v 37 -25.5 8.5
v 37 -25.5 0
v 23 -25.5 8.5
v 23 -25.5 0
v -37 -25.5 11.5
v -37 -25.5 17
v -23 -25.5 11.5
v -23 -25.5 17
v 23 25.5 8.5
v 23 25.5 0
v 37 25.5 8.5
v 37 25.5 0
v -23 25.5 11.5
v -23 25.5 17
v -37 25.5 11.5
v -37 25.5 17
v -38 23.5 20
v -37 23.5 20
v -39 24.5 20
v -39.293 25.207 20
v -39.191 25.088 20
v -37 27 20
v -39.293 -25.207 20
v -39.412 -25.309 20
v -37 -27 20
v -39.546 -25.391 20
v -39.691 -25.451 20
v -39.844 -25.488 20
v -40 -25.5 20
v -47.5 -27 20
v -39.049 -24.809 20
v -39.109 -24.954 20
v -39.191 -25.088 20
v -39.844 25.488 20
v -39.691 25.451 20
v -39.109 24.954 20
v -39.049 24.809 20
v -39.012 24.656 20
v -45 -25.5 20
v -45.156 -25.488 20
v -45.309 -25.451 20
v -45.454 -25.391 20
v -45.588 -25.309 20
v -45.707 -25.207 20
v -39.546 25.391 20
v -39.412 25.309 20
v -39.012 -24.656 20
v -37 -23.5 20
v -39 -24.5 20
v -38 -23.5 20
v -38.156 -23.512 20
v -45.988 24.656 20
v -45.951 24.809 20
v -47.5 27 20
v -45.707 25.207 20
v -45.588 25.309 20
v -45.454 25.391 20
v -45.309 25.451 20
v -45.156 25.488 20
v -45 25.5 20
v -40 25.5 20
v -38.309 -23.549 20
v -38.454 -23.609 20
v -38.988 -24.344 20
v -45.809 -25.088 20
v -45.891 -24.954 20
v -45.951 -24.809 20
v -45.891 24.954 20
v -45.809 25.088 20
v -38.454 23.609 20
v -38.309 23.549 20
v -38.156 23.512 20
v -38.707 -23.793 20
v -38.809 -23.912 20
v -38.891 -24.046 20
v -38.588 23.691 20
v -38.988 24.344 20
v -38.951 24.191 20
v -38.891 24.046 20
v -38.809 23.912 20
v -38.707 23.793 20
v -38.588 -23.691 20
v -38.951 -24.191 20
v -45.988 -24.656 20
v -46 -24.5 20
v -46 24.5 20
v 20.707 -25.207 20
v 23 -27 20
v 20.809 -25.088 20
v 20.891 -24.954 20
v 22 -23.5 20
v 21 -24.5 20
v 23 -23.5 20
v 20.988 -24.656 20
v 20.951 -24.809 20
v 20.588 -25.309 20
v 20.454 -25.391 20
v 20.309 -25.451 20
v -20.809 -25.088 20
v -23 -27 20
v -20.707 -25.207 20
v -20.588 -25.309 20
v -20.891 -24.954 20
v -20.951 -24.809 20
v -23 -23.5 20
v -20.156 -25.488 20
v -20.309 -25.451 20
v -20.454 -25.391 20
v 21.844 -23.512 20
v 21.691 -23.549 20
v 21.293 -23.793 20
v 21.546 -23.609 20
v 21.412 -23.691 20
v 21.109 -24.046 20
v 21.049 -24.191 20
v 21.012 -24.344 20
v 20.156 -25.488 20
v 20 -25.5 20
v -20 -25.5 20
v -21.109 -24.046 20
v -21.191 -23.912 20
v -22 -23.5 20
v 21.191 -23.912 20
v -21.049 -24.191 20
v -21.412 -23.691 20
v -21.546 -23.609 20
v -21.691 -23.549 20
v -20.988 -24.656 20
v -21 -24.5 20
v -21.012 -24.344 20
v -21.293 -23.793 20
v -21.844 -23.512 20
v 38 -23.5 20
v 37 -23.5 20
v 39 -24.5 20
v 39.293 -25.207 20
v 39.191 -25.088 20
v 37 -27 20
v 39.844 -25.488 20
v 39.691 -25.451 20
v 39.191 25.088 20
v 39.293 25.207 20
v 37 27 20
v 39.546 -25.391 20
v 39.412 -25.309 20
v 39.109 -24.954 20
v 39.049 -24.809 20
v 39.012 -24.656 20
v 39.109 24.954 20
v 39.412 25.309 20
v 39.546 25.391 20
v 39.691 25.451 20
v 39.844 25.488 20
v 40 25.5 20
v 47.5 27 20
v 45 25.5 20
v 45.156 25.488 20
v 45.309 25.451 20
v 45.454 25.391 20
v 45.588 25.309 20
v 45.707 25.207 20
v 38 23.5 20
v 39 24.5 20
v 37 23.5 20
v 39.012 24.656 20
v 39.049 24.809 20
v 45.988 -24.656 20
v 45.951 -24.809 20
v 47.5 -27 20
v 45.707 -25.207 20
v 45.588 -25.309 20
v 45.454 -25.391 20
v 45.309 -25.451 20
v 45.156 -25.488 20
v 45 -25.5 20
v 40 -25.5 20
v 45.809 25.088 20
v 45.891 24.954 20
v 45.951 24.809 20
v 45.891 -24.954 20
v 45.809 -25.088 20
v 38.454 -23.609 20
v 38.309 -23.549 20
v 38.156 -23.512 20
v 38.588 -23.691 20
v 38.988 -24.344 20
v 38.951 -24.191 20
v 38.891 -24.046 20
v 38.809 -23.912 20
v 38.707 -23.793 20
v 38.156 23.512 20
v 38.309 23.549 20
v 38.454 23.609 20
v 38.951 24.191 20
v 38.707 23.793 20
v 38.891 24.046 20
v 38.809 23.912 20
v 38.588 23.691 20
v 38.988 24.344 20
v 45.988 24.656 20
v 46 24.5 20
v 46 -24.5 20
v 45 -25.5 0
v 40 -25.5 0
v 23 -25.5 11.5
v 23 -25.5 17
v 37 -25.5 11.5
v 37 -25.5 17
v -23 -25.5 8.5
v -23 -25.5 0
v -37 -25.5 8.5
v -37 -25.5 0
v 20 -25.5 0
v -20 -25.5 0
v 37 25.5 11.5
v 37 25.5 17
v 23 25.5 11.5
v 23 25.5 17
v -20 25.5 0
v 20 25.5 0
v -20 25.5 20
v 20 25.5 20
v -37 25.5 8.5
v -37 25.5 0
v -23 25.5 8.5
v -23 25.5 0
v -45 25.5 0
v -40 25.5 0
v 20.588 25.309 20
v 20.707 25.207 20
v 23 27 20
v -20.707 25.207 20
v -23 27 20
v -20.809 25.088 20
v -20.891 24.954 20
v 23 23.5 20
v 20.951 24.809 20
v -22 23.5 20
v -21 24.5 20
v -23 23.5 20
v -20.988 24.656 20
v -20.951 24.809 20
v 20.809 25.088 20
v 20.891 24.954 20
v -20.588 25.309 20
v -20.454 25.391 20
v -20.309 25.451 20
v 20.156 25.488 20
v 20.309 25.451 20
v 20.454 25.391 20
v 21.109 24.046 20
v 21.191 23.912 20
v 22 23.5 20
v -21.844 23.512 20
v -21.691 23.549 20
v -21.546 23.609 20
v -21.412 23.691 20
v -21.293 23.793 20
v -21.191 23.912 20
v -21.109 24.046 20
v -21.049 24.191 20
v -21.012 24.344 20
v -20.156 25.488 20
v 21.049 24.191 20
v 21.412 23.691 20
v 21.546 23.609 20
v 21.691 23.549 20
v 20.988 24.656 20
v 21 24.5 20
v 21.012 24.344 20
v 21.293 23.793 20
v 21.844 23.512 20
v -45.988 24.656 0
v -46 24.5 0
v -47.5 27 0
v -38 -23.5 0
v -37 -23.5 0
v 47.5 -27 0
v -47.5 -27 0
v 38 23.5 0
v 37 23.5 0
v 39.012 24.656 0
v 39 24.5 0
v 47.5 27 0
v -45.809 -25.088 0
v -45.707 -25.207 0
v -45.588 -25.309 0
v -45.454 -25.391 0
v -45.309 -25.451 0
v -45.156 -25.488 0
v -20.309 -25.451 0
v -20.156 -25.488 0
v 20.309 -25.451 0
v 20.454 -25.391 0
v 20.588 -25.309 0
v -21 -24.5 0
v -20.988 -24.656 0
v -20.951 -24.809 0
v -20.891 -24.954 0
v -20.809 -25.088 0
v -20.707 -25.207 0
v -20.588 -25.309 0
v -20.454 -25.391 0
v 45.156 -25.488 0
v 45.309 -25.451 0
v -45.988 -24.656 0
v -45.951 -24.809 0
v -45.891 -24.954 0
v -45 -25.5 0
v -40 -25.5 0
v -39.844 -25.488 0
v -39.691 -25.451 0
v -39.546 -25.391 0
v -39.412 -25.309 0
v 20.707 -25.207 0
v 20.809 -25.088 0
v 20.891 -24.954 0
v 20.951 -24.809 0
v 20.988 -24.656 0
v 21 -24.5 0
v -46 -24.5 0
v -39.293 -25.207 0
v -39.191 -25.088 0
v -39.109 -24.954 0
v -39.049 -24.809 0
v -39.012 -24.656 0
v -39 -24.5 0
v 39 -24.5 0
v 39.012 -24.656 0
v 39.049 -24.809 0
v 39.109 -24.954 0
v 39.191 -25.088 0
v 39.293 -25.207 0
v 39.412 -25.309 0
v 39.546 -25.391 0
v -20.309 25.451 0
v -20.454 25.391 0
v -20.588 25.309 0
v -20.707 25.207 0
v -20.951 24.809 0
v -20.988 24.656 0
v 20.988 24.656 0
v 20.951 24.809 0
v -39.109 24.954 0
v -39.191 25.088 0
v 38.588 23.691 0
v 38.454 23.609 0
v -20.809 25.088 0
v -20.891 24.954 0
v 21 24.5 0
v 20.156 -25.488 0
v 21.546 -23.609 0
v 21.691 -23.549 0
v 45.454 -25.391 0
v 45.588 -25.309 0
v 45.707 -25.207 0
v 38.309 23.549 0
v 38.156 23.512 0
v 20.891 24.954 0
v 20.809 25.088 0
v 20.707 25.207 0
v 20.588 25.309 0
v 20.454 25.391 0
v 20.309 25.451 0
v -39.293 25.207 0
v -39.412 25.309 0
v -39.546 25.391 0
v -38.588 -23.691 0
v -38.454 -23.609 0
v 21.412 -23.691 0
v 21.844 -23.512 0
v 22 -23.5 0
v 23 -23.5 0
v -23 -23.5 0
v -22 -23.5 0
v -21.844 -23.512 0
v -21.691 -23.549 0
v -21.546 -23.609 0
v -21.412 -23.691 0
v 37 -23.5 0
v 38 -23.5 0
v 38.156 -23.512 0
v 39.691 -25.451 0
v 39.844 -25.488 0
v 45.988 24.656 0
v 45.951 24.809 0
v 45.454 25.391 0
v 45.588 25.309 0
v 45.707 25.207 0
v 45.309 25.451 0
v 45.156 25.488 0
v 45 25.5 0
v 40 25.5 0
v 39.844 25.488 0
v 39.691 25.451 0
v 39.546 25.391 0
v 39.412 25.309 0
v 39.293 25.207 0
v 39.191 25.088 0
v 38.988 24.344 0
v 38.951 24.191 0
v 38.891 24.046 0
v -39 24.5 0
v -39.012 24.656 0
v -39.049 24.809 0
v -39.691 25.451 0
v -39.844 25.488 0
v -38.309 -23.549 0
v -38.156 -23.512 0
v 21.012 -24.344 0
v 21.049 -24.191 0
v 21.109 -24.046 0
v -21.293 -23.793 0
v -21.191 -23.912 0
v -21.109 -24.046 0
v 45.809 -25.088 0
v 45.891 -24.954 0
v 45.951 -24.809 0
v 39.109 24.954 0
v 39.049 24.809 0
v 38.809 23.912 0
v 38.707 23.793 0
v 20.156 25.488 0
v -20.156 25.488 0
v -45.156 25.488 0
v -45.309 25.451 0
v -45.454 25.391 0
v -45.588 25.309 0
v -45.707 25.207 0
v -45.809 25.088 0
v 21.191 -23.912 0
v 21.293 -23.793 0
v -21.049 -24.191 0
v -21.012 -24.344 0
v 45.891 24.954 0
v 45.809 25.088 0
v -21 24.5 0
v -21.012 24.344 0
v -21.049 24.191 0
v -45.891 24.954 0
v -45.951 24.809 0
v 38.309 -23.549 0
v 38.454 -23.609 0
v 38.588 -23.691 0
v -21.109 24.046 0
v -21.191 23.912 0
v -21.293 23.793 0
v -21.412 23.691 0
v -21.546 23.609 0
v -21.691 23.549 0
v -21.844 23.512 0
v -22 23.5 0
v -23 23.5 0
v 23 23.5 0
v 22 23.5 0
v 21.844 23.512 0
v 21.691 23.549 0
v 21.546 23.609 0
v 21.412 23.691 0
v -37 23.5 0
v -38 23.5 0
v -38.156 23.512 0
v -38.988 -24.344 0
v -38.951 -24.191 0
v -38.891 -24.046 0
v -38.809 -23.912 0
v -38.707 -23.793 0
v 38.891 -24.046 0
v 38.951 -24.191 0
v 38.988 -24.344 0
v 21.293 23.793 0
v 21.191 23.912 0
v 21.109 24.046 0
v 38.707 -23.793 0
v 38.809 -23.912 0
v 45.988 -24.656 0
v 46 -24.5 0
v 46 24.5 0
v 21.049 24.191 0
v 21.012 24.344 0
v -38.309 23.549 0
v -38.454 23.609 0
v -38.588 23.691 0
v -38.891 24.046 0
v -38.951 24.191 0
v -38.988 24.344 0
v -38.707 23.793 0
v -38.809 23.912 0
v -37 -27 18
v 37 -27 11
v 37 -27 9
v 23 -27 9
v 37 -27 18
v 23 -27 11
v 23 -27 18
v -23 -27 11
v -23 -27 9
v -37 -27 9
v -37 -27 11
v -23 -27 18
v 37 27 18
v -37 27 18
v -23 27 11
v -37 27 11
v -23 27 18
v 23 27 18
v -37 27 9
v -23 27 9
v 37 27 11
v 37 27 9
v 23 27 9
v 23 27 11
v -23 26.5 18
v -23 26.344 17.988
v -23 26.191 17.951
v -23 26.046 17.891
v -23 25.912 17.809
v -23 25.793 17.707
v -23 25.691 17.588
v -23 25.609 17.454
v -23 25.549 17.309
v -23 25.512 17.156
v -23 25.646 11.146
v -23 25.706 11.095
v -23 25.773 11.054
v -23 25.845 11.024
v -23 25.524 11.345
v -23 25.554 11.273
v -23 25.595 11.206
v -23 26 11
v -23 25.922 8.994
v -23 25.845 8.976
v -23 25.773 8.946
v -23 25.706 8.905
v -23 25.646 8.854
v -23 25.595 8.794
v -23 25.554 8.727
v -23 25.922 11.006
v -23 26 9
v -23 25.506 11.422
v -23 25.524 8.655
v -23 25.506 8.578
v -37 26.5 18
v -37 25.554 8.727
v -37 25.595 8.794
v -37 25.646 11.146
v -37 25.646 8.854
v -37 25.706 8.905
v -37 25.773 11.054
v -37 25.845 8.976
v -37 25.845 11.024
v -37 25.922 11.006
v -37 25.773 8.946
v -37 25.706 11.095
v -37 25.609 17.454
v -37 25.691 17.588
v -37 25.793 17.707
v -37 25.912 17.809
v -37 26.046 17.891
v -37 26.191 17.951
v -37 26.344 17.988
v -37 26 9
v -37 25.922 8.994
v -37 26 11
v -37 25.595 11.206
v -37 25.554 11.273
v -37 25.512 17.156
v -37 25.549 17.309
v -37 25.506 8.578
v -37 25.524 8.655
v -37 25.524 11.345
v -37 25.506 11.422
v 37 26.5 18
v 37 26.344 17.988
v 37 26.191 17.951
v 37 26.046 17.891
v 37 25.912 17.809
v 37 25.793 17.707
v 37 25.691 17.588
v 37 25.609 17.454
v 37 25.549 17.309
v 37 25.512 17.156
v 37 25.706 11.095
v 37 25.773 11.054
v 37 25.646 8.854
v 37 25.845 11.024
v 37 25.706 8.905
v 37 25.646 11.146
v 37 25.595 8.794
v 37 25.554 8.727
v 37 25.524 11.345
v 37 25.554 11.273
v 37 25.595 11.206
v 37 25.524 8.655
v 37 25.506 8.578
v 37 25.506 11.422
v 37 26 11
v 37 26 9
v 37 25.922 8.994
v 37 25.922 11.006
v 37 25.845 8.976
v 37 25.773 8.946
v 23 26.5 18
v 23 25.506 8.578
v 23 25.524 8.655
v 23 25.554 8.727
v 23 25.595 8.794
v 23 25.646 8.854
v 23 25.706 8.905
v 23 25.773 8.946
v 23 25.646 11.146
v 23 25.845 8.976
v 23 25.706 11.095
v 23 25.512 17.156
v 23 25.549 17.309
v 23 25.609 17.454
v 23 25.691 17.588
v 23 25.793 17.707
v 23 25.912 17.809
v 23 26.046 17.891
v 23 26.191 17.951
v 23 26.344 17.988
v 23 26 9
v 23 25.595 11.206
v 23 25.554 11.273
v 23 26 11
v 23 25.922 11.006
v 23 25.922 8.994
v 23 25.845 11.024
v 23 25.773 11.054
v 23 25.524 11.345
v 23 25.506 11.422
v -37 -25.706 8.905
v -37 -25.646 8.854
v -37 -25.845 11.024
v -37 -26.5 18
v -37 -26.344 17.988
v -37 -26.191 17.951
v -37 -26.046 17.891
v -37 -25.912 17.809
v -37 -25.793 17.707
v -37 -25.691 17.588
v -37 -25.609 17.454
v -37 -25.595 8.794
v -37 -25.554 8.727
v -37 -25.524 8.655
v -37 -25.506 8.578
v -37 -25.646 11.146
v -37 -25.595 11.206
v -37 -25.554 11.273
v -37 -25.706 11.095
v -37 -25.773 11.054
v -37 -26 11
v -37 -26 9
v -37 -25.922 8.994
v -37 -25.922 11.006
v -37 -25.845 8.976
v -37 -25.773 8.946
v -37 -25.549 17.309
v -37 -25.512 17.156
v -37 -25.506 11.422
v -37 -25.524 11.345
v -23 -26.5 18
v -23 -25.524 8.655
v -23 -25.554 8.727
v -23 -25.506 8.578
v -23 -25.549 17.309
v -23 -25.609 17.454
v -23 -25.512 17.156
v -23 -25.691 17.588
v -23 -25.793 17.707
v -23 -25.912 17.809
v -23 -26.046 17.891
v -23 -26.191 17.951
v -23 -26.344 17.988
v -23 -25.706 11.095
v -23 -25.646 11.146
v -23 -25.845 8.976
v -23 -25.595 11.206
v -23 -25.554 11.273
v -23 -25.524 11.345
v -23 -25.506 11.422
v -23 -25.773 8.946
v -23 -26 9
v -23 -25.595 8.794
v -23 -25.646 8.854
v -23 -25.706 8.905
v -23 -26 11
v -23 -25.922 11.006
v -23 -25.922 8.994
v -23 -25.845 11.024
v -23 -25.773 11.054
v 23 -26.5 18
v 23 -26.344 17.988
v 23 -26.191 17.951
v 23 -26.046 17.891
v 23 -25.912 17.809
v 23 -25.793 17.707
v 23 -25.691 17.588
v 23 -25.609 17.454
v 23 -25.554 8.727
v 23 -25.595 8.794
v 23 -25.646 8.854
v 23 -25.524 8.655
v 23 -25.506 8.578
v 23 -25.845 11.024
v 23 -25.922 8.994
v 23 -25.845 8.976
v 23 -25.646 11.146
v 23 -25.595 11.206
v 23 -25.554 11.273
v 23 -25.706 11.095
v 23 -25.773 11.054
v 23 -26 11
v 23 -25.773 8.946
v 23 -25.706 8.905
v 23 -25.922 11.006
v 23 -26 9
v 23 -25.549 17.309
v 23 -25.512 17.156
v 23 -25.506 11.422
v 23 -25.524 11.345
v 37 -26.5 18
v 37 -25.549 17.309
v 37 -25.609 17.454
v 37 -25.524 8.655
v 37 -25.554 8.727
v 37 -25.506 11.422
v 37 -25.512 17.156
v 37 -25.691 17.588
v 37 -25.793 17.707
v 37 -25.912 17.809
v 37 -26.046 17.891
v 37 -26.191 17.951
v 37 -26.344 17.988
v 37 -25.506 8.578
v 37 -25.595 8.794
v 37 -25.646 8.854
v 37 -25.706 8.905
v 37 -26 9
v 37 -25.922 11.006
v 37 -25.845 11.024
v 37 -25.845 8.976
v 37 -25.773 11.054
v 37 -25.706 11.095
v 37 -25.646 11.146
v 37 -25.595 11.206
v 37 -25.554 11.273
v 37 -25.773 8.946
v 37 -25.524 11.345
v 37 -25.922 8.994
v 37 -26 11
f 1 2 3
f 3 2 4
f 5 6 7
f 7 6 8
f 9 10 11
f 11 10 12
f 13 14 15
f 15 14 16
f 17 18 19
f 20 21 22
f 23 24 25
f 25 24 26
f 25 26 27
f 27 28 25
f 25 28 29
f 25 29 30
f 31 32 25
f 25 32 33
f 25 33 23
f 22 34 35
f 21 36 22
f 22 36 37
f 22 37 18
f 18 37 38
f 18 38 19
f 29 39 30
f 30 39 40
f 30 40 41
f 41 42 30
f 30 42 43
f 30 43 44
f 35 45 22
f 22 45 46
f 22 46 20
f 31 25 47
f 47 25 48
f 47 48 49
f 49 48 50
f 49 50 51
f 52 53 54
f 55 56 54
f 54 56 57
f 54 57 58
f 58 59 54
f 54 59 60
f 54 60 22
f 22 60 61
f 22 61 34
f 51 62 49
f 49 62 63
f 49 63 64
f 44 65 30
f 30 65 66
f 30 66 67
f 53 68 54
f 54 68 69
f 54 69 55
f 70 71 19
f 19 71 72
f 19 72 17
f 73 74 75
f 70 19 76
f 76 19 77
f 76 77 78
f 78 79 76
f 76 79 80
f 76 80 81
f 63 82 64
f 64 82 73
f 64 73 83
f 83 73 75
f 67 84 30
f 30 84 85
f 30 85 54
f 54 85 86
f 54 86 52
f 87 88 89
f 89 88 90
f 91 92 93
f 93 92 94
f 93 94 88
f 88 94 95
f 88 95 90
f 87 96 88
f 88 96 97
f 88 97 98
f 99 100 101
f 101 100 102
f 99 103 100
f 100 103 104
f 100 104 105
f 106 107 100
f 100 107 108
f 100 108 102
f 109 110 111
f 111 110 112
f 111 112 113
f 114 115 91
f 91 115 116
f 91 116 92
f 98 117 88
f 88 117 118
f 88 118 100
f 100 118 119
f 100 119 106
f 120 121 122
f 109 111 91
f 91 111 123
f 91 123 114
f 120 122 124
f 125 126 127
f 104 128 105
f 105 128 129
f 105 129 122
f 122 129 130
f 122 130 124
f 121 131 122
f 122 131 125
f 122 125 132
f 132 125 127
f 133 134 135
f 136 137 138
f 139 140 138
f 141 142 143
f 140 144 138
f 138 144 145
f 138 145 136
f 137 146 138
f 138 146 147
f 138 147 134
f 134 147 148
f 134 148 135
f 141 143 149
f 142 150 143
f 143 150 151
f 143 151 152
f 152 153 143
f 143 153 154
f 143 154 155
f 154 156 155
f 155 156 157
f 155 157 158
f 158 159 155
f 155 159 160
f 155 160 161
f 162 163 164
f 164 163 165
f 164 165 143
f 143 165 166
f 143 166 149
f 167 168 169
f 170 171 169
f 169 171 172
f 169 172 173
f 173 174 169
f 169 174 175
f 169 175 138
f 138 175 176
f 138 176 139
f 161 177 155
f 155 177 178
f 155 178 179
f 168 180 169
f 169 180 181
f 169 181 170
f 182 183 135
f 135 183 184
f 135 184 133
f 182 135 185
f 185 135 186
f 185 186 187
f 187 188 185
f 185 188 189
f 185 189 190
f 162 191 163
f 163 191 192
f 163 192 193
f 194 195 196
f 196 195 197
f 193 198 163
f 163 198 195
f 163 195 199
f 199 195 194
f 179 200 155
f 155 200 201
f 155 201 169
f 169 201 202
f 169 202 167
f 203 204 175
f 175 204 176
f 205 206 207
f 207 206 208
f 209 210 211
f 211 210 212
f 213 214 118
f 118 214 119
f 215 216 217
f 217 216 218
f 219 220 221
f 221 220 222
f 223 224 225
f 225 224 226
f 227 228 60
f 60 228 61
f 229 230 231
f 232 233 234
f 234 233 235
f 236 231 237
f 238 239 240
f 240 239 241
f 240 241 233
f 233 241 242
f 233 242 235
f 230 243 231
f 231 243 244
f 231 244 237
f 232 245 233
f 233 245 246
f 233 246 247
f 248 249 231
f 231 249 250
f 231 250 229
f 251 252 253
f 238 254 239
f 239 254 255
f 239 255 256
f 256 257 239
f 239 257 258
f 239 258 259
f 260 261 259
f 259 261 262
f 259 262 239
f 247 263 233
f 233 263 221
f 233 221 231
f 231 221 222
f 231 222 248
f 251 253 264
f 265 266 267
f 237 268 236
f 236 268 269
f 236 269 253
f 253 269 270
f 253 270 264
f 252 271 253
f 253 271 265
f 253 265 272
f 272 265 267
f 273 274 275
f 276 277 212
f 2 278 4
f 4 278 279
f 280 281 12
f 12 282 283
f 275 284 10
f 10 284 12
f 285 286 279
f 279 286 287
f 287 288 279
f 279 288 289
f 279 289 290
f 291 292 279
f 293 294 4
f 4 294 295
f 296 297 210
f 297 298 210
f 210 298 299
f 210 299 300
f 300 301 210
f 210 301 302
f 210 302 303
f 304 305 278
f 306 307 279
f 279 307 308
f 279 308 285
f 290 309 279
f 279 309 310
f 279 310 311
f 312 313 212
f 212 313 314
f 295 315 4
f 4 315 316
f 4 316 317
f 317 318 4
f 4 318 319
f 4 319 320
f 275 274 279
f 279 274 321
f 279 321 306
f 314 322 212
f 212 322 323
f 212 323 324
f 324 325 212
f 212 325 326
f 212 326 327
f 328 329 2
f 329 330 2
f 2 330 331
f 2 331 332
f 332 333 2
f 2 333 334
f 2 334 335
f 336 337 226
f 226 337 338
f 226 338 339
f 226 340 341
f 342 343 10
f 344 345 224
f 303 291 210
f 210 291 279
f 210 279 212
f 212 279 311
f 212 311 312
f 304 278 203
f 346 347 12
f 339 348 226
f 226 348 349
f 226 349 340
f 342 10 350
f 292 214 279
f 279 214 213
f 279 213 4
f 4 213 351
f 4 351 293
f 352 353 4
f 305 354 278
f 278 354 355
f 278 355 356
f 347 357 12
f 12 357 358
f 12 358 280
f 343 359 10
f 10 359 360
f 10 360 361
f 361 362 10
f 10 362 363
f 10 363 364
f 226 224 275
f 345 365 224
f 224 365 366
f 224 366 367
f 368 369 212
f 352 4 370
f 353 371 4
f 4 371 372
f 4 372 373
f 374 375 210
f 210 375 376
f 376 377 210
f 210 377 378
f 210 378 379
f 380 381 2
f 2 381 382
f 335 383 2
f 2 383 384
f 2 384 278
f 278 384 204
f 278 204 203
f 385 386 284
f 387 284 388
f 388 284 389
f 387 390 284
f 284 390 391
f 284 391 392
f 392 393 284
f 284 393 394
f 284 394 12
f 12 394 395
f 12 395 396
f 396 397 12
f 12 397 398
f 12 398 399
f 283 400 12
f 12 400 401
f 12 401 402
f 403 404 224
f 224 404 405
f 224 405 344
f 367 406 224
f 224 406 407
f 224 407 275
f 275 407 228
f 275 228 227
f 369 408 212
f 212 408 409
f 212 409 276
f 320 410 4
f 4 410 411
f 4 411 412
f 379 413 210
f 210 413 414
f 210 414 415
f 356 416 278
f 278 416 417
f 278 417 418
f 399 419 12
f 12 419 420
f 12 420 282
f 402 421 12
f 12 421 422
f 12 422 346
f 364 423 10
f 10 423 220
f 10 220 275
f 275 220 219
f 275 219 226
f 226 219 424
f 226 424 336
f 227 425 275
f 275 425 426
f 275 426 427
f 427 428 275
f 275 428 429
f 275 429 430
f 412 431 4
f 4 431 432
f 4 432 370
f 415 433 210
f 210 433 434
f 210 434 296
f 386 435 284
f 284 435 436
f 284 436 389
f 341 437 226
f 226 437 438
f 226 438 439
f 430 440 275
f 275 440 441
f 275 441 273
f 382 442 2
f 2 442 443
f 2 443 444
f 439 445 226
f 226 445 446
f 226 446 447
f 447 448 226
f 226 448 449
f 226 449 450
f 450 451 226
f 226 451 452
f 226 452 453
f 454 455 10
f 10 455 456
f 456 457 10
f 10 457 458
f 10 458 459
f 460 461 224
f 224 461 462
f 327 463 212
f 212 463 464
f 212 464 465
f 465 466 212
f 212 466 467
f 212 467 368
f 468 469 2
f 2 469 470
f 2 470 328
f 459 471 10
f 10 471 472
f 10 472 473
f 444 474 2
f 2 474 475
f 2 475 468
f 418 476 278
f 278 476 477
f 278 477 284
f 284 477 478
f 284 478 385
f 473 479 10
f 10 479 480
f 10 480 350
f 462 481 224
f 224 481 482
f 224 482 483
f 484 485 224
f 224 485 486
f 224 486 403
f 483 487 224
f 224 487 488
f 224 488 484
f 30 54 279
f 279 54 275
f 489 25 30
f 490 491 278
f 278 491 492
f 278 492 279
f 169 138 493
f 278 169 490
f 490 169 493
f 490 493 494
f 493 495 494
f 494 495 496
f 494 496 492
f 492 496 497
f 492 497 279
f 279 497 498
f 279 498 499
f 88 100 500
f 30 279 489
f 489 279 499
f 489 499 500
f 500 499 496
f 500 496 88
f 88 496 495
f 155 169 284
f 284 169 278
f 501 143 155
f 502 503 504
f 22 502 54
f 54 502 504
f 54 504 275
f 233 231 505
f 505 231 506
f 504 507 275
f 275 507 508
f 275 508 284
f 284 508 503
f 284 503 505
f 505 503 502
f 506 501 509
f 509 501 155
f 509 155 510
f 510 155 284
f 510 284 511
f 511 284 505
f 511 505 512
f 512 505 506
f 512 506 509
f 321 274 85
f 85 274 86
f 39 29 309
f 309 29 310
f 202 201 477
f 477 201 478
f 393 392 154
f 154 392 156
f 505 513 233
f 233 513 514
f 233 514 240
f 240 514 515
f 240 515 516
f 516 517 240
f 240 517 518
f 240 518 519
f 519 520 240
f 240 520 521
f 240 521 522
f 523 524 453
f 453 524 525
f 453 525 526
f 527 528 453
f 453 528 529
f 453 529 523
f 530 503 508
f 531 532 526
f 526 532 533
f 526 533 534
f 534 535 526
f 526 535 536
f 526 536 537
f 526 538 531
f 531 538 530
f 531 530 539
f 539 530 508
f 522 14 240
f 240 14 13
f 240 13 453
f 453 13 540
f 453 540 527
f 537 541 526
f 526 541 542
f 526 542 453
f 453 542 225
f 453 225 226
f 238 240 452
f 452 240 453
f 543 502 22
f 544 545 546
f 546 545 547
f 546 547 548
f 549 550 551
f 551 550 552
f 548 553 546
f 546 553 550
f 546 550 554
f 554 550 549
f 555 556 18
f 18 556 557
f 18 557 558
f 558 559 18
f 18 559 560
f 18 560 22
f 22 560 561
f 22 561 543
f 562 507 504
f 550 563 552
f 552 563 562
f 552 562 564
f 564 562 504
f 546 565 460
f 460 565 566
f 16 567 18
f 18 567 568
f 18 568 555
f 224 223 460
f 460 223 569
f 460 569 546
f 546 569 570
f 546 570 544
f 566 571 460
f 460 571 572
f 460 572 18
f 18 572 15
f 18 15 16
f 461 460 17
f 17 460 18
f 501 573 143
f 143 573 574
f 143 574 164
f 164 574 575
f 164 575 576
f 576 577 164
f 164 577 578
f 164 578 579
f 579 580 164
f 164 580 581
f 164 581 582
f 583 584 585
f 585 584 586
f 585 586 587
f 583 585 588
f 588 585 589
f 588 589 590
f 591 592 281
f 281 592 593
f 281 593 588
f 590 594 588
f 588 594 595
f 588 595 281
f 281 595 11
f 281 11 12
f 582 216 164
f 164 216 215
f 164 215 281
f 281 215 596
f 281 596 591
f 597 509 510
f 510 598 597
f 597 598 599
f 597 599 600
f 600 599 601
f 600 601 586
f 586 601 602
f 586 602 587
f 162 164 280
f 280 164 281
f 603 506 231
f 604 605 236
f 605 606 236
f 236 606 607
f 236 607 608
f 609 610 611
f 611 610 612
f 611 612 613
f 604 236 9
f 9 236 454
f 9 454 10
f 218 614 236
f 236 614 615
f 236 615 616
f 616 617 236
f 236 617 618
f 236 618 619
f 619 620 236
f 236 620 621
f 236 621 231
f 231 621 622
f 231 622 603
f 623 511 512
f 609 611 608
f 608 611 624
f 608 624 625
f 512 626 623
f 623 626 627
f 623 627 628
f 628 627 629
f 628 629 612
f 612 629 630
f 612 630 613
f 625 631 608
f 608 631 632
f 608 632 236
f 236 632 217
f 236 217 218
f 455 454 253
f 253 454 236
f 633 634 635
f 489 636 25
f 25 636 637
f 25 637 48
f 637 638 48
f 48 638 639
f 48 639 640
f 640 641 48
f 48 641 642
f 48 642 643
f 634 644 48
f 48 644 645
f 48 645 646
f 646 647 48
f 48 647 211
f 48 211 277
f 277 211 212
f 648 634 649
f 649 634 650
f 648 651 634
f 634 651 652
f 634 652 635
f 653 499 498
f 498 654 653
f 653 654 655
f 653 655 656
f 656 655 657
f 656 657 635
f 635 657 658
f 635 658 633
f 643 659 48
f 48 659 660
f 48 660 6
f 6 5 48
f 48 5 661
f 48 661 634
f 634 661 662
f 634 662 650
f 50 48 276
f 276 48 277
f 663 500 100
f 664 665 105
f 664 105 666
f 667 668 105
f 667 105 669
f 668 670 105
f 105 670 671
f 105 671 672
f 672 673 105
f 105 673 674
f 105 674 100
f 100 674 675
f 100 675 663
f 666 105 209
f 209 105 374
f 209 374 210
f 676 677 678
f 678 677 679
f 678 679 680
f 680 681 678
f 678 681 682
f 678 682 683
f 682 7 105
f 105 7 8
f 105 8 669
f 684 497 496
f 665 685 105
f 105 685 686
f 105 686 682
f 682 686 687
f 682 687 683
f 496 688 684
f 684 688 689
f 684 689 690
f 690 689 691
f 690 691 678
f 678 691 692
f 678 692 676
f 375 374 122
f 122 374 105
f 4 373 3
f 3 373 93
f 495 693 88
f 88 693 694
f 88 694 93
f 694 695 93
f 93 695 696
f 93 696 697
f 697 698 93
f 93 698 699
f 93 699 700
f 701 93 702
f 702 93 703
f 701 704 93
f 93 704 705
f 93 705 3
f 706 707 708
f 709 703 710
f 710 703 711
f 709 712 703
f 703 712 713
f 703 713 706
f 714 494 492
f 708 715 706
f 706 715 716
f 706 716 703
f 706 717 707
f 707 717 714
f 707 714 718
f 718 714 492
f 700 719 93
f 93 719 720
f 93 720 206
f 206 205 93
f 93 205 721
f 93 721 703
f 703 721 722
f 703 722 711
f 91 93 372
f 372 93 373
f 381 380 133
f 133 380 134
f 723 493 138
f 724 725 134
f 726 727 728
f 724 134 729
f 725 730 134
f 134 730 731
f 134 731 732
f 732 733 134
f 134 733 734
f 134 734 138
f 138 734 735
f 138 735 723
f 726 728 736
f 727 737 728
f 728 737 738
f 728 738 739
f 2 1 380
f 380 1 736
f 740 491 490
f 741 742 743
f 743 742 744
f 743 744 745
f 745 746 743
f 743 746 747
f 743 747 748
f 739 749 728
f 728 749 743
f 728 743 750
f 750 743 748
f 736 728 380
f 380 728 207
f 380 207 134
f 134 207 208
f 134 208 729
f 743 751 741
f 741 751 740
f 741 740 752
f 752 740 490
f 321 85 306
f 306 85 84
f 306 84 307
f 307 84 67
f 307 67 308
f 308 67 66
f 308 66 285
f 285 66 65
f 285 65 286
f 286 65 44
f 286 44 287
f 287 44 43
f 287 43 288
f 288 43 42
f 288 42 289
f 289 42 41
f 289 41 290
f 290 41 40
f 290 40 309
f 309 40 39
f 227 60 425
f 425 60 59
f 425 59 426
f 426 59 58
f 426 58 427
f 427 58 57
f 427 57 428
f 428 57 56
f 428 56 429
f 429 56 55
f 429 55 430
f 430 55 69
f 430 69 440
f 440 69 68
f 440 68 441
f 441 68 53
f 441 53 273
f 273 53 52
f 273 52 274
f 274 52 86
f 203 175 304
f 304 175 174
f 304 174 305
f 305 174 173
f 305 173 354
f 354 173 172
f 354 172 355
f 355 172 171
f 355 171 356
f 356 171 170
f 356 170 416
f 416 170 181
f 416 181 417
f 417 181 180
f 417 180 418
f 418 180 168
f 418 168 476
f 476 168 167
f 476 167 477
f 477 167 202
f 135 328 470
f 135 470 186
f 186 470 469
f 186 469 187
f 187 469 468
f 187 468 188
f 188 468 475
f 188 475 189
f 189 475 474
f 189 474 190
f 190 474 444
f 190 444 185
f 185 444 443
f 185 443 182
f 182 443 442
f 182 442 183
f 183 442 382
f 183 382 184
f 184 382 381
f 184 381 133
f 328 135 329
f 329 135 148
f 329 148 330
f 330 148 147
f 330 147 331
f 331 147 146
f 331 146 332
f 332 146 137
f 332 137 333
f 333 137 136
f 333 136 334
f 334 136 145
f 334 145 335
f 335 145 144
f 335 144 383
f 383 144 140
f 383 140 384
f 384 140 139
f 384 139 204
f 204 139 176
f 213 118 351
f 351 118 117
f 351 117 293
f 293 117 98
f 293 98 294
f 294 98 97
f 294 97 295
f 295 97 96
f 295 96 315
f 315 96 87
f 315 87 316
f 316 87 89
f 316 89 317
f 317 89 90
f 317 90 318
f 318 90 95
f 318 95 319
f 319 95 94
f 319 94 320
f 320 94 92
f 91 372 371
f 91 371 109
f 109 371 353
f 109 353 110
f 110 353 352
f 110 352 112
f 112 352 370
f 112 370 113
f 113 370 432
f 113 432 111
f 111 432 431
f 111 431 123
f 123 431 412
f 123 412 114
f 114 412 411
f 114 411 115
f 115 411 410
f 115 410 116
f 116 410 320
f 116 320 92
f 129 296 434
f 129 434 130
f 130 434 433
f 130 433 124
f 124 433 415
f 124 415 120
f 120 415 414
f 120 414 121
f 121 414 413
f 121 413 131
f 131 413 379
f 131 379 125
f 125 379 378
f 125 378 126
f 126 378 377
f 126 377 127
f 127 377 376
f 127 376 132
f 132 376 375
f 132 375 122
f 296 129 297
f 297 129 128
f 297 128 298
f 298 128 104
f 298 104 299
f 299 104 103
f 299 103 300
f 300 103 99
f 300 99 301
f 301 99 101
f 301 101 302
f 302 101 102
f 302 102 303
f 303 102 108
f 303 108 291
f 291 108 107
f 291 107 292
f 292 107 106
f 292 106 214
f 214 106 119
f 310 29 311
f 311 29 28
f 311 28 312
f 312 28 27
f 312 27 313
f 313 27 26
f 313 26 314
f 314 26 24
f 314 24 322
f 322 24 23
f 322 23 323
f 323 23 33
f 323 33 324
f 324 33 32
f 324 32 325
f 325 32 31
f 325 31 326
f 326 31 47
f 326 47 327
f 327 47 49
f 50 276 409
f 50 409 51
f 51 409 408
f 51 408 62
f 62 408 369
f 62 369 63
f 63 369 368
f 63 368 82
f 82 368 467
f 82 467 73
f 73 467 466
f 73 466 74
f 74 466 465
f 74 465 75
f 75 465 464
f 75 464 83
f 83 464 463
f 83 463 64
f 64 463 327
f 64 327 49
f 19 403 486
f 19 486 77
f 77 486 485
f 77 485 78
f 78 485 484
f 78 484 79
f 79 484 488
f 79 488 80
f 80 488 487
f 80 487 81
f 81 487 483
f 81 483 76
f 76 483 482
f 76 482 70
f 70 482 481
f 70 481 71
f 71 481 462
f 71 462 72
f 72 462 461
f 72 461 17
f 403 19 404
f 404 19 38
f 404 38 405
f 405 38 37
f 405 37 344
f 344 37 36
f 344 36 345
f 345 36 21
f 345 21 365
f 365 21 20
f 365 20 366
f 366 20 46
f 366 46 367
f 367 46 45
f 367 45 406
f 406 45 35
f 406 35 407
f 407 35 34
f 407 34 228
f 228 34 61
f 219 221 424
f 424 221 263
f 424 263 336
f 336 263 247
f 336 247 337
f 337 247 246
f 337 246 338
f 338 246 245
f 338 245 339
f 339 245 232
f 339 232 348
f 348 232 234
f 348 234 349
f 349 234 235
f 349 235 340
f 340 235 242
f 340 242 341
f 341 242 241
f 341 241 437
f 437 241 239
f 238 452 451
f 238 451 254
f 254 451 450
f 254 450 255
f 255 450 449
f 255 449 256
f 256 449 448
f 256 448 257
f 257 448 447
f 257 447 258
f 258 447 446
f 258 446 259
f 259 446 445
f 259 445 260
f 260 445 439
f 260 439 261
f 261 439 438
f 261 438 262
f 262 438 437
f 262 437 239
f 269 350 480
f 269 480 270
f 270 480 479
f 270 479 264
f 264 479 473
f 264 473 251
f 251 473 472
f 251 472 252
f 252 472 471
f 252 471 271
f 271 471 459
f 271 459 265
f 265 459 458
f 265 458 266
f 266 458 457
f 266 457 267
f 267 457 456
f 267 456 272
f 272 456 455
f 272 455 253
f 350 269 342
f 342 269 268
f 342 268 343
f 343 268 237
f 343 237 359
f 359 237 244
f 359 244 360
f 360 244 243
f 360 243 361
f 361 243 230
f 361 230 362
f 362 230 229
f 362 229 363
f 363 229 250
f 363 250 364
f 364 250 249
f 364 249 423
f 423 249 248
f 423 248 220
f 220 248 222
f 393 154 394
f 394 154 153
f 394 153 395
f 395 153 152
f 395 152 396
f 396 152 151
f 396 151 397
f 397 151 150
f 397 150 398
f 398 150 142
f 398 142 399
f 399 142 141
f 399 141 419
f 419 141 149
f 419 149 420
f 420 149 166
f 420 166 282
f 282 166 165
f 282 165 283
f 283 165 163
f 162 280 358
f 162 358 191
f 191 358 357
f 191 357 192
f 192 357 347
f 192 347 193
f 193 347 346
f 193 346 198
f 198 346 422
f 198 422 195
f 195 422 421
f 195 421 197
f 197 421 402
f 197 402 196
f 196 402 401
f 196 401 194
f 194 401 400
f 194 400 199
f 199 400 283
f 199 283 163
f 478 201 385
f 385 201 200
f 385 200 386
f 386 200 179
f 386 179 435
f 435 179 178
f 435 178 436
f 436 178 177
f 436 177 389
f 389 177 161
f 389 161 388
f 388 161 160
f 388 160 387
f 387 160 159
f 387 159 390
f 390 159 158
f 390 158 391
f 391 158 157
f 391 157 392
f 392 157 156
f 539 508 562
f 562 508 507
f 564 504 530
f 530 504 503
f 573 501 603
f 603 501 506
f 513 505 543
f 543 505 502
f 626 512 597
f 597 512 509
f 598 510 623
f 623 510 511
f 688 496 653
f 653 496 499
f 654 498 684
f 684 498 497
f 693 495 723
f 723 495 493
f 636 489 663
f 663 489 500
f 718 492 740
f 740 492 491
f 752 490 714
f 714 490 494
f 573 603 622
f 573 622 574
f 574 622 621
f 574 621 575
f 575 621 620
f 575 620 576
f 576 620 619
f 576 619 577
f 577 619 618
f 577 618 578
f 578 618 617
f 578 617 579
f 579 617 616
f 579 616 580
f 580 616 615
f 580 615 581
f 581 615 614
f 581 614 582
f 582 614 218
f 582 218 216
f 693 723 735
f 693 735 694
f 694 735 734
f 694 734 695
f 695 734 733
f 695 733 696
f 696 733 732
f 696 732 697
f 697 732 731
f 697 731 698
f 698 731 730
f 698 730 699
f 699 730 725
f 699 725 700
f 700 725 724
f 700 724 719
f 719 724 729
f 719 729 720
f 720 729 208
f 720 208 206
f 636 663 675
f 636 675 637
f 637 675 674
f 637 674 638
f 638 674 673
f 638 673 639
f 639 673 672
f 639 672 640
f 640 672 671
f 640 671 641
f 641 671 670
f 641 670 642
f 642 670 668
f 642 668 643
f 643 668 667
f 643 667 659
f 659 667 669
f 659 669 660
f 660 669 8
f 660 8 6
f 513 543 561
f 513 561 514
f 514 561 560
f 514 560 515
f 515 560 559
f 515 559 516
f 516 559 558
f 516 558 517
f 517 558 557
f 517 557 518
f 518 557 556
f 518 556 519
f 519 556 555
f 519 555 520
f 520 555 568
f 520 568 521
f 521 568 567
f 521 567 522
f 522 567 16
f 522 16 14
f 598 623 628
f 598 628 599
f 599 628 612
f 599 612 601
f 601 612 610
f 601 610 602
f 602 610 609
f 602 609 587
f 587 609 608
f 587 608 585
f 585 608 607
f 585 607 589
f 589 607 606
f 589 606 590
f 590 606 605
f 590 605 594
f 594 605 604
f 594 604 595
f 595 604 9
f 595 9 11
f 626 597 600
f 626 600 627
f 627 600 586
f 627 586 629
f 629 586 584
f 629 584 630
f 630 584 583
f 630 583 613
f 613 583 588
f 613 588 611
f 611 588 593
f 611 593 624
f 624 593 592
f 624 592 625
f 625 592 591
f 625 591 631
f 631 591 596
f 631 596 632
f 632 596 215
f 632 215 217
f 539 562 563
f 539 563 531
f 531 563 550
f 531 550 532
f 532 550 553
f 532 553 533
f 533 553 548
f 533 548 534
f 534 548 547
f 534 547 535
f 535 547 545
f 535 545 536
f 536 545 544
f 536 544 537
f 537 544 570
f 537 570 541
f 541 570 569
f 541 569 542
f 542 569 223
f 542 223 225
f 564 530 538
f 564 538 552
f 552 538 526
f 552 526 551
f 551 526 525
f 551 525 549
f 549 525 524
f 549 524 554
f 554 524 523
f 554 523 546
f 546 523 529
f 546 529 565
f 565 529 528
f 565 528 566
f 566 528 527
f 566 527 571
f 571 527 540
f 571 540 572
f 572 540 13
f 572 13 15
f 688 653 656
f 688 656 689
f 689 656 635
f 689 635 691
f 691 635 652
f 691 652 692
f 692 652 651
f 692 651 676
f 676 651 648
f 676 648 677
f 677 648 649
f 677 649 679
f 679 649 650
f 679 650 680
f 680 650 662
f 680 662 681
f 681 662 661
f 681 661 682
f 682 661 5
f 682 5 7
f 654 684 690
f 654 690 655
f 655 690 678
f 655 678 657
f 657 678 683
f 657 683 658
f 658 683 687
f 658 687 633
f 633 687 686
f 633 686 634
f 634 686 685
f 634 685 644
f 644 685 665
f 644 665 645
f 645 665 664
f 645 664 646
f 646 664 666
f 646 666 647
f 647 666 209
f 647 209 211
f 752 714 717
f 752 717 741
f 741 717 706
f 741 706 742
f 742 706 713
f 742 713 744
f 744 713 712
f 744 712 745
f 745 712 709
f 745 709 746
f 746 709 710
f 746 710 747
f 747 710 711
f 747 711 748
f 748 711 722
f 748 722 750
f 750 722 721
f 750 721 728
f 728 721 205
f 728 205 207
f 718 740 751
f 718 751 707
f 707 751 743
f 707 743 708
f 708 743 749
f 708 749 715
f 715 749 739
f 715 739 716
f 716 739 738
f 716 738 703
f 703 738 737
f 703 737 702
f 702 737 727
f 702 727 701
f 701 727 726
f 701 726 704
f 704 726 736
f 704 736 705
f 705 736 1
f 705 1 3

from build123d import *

# Parameters (mm, degrees)
SKETCH1_W               = 95
SKETCH1_H               = 54
SKETCH1_W_2             = 92
SKETCH1_H_2             = 51
BOSS_EXTRUDE1_DEPTH     = 20
SKETCH2_W               = 2
SKETCH2_H               = 2
BOSS_EXTRUDE2_DEPTH     = 20
FILLET1_R               = 1
CUT_EXTRUDE1_DEPTH      = 75.647504982
CUT_EXTRUDE1_DEPTH_BACK = 75.647504982
SKETCH3_W               = 14
SKETCH3_H               = 2
FILLET2_R               = 1
FILLET3_R               = 0.5


with BuildPart() as part:
    # Sketch1 → Boss-Extrude1 (new body)
    with BuildSketch(Plane.XY):
        Rectangle(SKETCH1_W, SKETCH1_H)
        Rectangle(SKETCH1_W_2, SKETCH1_H_2, mode=Mode.SUBTRACT)
    extrude(amount=BOSS_EXTRUDE1_DEPTH)

    # Sketch2 → Boss-Extrude2 (add)
    with BuildSketch(Plane(origin=(0, 0, 0), x_dir=(-1, 0, 0), z_dir=(0, 0, -1))):
        with Locations((22, 24.5)):
            Rectangle(SKETCH2_W, SKETCH2_H)
        with Locations((-38, 24.5)):
            Rectangle(SKETCH2_W, SKETCH2_H)
        with Locations((38, 24.5)):
            Rectangle(SKETCH2_W, SKETCH2_H)
        with Locations((-22, 24.5)):
            Rectangle(SKETCH2_W, SKETCH2_H)
        with Locations((38, -24.5)):
            Rectangle(SKETCH2_W, SKETCH2_H)
        with Locations((22, -24.5)):
            Rectangle(SKETCH2_W, SKETCH2_H)
        with Locations((-22, -24.5)):
            Rectangle(SKETCH2_W, SKETCH2_H)
        with Locations((-38, -24.5)):
            Rectangle(SKETCH2_W, SKETCH2_H)
    extrude(amount=-BOSS_EXTRUDE2_DEPTH)

    # Fillet1
    fillet1_edges = [part.edges().sort_by_distance(p)[0] for p in [
        (-46, -25.5, 10),
        (-46, 25.5, 10),
        (46, -25.5, 10),
        (39, -25.5, 10),
        (39, -23.5, 10),
        (21, -23.5, 10),
        (21, -25.5, 10),
        (-21, -25.5, 10),
        (-21, -23.5, 10),
        (-39, -23.5, 10),
        (-39, -25.5, 10),
        (-39, 25.5, 10),
        (-39, 23.5, 10),
        (-21, 23.5, 10),
        (-21, 25.5, 10),
        (21, 25.5, 10),
        (21, 23.5, 10),
        (39, 23.5, 10),
        (39, 25.5, 10),
        (46, 25.5, 10),
    ]]
    fillet(fillet1_edges, radius=FILLET1_R - 0.0001)  # a hair under: the kernel refuses the full size

    # Sketch3 → Cut-Extrude1 (cut, two sides: drawn at the far end of the back side and taken through both)
    with BuildSketch(Plane.XZ.offset(27).offset(-CUT_EXTRUDE1_DEPTH_BACK)):
        with Locations((-30, 10)):
            Rectangle(SKETCH3_W, SKETCH3_H)
        with Locations((30, 10)):
            Rectangle(SKETCH3_W, SKETCH3_H)
        with Locations((30, 19)):
            Rectangle(SKETCH3_W, SKETCH3_H)
        with Locations((-30, 19)):
            Rectangle(SKETCH3_W, SKETCH3_H)
    extrude(amount=CUT_EXTRUDE1_DEPTH + CUT_EXTRUDE1_DEPTH_BACK, mode=Mode.SUBTRACT)

    # Fillet2
    fillet2_edges = [part.edges().sort_by_distance(p)[0] for p in [
        (-30, -25.5, 18),
        (-30, 25.5, 18),
        (30, -25.5, 18),
        (30, 25.5, 18),
    ]]
    fillet(fillet2_edges, radius=FILLET2_R)

    # Fillet3
    fillet3_edges = [part.edges().sort_by_distance(p)[0] for p in [
        (30, -25.5, 9),
        (30, 25.5, 9),
        (30, -25.5, 11),
        (30, 25.5, 11),
        (-30, -25.5, 11),
        (-30, 25.5, 11),
        (-30, -25.5, 9),
        (-30, 25.5, 9),
    ]]
    fillet(fillet3_edges, radius=FILLET3_R)


solid = part.part
